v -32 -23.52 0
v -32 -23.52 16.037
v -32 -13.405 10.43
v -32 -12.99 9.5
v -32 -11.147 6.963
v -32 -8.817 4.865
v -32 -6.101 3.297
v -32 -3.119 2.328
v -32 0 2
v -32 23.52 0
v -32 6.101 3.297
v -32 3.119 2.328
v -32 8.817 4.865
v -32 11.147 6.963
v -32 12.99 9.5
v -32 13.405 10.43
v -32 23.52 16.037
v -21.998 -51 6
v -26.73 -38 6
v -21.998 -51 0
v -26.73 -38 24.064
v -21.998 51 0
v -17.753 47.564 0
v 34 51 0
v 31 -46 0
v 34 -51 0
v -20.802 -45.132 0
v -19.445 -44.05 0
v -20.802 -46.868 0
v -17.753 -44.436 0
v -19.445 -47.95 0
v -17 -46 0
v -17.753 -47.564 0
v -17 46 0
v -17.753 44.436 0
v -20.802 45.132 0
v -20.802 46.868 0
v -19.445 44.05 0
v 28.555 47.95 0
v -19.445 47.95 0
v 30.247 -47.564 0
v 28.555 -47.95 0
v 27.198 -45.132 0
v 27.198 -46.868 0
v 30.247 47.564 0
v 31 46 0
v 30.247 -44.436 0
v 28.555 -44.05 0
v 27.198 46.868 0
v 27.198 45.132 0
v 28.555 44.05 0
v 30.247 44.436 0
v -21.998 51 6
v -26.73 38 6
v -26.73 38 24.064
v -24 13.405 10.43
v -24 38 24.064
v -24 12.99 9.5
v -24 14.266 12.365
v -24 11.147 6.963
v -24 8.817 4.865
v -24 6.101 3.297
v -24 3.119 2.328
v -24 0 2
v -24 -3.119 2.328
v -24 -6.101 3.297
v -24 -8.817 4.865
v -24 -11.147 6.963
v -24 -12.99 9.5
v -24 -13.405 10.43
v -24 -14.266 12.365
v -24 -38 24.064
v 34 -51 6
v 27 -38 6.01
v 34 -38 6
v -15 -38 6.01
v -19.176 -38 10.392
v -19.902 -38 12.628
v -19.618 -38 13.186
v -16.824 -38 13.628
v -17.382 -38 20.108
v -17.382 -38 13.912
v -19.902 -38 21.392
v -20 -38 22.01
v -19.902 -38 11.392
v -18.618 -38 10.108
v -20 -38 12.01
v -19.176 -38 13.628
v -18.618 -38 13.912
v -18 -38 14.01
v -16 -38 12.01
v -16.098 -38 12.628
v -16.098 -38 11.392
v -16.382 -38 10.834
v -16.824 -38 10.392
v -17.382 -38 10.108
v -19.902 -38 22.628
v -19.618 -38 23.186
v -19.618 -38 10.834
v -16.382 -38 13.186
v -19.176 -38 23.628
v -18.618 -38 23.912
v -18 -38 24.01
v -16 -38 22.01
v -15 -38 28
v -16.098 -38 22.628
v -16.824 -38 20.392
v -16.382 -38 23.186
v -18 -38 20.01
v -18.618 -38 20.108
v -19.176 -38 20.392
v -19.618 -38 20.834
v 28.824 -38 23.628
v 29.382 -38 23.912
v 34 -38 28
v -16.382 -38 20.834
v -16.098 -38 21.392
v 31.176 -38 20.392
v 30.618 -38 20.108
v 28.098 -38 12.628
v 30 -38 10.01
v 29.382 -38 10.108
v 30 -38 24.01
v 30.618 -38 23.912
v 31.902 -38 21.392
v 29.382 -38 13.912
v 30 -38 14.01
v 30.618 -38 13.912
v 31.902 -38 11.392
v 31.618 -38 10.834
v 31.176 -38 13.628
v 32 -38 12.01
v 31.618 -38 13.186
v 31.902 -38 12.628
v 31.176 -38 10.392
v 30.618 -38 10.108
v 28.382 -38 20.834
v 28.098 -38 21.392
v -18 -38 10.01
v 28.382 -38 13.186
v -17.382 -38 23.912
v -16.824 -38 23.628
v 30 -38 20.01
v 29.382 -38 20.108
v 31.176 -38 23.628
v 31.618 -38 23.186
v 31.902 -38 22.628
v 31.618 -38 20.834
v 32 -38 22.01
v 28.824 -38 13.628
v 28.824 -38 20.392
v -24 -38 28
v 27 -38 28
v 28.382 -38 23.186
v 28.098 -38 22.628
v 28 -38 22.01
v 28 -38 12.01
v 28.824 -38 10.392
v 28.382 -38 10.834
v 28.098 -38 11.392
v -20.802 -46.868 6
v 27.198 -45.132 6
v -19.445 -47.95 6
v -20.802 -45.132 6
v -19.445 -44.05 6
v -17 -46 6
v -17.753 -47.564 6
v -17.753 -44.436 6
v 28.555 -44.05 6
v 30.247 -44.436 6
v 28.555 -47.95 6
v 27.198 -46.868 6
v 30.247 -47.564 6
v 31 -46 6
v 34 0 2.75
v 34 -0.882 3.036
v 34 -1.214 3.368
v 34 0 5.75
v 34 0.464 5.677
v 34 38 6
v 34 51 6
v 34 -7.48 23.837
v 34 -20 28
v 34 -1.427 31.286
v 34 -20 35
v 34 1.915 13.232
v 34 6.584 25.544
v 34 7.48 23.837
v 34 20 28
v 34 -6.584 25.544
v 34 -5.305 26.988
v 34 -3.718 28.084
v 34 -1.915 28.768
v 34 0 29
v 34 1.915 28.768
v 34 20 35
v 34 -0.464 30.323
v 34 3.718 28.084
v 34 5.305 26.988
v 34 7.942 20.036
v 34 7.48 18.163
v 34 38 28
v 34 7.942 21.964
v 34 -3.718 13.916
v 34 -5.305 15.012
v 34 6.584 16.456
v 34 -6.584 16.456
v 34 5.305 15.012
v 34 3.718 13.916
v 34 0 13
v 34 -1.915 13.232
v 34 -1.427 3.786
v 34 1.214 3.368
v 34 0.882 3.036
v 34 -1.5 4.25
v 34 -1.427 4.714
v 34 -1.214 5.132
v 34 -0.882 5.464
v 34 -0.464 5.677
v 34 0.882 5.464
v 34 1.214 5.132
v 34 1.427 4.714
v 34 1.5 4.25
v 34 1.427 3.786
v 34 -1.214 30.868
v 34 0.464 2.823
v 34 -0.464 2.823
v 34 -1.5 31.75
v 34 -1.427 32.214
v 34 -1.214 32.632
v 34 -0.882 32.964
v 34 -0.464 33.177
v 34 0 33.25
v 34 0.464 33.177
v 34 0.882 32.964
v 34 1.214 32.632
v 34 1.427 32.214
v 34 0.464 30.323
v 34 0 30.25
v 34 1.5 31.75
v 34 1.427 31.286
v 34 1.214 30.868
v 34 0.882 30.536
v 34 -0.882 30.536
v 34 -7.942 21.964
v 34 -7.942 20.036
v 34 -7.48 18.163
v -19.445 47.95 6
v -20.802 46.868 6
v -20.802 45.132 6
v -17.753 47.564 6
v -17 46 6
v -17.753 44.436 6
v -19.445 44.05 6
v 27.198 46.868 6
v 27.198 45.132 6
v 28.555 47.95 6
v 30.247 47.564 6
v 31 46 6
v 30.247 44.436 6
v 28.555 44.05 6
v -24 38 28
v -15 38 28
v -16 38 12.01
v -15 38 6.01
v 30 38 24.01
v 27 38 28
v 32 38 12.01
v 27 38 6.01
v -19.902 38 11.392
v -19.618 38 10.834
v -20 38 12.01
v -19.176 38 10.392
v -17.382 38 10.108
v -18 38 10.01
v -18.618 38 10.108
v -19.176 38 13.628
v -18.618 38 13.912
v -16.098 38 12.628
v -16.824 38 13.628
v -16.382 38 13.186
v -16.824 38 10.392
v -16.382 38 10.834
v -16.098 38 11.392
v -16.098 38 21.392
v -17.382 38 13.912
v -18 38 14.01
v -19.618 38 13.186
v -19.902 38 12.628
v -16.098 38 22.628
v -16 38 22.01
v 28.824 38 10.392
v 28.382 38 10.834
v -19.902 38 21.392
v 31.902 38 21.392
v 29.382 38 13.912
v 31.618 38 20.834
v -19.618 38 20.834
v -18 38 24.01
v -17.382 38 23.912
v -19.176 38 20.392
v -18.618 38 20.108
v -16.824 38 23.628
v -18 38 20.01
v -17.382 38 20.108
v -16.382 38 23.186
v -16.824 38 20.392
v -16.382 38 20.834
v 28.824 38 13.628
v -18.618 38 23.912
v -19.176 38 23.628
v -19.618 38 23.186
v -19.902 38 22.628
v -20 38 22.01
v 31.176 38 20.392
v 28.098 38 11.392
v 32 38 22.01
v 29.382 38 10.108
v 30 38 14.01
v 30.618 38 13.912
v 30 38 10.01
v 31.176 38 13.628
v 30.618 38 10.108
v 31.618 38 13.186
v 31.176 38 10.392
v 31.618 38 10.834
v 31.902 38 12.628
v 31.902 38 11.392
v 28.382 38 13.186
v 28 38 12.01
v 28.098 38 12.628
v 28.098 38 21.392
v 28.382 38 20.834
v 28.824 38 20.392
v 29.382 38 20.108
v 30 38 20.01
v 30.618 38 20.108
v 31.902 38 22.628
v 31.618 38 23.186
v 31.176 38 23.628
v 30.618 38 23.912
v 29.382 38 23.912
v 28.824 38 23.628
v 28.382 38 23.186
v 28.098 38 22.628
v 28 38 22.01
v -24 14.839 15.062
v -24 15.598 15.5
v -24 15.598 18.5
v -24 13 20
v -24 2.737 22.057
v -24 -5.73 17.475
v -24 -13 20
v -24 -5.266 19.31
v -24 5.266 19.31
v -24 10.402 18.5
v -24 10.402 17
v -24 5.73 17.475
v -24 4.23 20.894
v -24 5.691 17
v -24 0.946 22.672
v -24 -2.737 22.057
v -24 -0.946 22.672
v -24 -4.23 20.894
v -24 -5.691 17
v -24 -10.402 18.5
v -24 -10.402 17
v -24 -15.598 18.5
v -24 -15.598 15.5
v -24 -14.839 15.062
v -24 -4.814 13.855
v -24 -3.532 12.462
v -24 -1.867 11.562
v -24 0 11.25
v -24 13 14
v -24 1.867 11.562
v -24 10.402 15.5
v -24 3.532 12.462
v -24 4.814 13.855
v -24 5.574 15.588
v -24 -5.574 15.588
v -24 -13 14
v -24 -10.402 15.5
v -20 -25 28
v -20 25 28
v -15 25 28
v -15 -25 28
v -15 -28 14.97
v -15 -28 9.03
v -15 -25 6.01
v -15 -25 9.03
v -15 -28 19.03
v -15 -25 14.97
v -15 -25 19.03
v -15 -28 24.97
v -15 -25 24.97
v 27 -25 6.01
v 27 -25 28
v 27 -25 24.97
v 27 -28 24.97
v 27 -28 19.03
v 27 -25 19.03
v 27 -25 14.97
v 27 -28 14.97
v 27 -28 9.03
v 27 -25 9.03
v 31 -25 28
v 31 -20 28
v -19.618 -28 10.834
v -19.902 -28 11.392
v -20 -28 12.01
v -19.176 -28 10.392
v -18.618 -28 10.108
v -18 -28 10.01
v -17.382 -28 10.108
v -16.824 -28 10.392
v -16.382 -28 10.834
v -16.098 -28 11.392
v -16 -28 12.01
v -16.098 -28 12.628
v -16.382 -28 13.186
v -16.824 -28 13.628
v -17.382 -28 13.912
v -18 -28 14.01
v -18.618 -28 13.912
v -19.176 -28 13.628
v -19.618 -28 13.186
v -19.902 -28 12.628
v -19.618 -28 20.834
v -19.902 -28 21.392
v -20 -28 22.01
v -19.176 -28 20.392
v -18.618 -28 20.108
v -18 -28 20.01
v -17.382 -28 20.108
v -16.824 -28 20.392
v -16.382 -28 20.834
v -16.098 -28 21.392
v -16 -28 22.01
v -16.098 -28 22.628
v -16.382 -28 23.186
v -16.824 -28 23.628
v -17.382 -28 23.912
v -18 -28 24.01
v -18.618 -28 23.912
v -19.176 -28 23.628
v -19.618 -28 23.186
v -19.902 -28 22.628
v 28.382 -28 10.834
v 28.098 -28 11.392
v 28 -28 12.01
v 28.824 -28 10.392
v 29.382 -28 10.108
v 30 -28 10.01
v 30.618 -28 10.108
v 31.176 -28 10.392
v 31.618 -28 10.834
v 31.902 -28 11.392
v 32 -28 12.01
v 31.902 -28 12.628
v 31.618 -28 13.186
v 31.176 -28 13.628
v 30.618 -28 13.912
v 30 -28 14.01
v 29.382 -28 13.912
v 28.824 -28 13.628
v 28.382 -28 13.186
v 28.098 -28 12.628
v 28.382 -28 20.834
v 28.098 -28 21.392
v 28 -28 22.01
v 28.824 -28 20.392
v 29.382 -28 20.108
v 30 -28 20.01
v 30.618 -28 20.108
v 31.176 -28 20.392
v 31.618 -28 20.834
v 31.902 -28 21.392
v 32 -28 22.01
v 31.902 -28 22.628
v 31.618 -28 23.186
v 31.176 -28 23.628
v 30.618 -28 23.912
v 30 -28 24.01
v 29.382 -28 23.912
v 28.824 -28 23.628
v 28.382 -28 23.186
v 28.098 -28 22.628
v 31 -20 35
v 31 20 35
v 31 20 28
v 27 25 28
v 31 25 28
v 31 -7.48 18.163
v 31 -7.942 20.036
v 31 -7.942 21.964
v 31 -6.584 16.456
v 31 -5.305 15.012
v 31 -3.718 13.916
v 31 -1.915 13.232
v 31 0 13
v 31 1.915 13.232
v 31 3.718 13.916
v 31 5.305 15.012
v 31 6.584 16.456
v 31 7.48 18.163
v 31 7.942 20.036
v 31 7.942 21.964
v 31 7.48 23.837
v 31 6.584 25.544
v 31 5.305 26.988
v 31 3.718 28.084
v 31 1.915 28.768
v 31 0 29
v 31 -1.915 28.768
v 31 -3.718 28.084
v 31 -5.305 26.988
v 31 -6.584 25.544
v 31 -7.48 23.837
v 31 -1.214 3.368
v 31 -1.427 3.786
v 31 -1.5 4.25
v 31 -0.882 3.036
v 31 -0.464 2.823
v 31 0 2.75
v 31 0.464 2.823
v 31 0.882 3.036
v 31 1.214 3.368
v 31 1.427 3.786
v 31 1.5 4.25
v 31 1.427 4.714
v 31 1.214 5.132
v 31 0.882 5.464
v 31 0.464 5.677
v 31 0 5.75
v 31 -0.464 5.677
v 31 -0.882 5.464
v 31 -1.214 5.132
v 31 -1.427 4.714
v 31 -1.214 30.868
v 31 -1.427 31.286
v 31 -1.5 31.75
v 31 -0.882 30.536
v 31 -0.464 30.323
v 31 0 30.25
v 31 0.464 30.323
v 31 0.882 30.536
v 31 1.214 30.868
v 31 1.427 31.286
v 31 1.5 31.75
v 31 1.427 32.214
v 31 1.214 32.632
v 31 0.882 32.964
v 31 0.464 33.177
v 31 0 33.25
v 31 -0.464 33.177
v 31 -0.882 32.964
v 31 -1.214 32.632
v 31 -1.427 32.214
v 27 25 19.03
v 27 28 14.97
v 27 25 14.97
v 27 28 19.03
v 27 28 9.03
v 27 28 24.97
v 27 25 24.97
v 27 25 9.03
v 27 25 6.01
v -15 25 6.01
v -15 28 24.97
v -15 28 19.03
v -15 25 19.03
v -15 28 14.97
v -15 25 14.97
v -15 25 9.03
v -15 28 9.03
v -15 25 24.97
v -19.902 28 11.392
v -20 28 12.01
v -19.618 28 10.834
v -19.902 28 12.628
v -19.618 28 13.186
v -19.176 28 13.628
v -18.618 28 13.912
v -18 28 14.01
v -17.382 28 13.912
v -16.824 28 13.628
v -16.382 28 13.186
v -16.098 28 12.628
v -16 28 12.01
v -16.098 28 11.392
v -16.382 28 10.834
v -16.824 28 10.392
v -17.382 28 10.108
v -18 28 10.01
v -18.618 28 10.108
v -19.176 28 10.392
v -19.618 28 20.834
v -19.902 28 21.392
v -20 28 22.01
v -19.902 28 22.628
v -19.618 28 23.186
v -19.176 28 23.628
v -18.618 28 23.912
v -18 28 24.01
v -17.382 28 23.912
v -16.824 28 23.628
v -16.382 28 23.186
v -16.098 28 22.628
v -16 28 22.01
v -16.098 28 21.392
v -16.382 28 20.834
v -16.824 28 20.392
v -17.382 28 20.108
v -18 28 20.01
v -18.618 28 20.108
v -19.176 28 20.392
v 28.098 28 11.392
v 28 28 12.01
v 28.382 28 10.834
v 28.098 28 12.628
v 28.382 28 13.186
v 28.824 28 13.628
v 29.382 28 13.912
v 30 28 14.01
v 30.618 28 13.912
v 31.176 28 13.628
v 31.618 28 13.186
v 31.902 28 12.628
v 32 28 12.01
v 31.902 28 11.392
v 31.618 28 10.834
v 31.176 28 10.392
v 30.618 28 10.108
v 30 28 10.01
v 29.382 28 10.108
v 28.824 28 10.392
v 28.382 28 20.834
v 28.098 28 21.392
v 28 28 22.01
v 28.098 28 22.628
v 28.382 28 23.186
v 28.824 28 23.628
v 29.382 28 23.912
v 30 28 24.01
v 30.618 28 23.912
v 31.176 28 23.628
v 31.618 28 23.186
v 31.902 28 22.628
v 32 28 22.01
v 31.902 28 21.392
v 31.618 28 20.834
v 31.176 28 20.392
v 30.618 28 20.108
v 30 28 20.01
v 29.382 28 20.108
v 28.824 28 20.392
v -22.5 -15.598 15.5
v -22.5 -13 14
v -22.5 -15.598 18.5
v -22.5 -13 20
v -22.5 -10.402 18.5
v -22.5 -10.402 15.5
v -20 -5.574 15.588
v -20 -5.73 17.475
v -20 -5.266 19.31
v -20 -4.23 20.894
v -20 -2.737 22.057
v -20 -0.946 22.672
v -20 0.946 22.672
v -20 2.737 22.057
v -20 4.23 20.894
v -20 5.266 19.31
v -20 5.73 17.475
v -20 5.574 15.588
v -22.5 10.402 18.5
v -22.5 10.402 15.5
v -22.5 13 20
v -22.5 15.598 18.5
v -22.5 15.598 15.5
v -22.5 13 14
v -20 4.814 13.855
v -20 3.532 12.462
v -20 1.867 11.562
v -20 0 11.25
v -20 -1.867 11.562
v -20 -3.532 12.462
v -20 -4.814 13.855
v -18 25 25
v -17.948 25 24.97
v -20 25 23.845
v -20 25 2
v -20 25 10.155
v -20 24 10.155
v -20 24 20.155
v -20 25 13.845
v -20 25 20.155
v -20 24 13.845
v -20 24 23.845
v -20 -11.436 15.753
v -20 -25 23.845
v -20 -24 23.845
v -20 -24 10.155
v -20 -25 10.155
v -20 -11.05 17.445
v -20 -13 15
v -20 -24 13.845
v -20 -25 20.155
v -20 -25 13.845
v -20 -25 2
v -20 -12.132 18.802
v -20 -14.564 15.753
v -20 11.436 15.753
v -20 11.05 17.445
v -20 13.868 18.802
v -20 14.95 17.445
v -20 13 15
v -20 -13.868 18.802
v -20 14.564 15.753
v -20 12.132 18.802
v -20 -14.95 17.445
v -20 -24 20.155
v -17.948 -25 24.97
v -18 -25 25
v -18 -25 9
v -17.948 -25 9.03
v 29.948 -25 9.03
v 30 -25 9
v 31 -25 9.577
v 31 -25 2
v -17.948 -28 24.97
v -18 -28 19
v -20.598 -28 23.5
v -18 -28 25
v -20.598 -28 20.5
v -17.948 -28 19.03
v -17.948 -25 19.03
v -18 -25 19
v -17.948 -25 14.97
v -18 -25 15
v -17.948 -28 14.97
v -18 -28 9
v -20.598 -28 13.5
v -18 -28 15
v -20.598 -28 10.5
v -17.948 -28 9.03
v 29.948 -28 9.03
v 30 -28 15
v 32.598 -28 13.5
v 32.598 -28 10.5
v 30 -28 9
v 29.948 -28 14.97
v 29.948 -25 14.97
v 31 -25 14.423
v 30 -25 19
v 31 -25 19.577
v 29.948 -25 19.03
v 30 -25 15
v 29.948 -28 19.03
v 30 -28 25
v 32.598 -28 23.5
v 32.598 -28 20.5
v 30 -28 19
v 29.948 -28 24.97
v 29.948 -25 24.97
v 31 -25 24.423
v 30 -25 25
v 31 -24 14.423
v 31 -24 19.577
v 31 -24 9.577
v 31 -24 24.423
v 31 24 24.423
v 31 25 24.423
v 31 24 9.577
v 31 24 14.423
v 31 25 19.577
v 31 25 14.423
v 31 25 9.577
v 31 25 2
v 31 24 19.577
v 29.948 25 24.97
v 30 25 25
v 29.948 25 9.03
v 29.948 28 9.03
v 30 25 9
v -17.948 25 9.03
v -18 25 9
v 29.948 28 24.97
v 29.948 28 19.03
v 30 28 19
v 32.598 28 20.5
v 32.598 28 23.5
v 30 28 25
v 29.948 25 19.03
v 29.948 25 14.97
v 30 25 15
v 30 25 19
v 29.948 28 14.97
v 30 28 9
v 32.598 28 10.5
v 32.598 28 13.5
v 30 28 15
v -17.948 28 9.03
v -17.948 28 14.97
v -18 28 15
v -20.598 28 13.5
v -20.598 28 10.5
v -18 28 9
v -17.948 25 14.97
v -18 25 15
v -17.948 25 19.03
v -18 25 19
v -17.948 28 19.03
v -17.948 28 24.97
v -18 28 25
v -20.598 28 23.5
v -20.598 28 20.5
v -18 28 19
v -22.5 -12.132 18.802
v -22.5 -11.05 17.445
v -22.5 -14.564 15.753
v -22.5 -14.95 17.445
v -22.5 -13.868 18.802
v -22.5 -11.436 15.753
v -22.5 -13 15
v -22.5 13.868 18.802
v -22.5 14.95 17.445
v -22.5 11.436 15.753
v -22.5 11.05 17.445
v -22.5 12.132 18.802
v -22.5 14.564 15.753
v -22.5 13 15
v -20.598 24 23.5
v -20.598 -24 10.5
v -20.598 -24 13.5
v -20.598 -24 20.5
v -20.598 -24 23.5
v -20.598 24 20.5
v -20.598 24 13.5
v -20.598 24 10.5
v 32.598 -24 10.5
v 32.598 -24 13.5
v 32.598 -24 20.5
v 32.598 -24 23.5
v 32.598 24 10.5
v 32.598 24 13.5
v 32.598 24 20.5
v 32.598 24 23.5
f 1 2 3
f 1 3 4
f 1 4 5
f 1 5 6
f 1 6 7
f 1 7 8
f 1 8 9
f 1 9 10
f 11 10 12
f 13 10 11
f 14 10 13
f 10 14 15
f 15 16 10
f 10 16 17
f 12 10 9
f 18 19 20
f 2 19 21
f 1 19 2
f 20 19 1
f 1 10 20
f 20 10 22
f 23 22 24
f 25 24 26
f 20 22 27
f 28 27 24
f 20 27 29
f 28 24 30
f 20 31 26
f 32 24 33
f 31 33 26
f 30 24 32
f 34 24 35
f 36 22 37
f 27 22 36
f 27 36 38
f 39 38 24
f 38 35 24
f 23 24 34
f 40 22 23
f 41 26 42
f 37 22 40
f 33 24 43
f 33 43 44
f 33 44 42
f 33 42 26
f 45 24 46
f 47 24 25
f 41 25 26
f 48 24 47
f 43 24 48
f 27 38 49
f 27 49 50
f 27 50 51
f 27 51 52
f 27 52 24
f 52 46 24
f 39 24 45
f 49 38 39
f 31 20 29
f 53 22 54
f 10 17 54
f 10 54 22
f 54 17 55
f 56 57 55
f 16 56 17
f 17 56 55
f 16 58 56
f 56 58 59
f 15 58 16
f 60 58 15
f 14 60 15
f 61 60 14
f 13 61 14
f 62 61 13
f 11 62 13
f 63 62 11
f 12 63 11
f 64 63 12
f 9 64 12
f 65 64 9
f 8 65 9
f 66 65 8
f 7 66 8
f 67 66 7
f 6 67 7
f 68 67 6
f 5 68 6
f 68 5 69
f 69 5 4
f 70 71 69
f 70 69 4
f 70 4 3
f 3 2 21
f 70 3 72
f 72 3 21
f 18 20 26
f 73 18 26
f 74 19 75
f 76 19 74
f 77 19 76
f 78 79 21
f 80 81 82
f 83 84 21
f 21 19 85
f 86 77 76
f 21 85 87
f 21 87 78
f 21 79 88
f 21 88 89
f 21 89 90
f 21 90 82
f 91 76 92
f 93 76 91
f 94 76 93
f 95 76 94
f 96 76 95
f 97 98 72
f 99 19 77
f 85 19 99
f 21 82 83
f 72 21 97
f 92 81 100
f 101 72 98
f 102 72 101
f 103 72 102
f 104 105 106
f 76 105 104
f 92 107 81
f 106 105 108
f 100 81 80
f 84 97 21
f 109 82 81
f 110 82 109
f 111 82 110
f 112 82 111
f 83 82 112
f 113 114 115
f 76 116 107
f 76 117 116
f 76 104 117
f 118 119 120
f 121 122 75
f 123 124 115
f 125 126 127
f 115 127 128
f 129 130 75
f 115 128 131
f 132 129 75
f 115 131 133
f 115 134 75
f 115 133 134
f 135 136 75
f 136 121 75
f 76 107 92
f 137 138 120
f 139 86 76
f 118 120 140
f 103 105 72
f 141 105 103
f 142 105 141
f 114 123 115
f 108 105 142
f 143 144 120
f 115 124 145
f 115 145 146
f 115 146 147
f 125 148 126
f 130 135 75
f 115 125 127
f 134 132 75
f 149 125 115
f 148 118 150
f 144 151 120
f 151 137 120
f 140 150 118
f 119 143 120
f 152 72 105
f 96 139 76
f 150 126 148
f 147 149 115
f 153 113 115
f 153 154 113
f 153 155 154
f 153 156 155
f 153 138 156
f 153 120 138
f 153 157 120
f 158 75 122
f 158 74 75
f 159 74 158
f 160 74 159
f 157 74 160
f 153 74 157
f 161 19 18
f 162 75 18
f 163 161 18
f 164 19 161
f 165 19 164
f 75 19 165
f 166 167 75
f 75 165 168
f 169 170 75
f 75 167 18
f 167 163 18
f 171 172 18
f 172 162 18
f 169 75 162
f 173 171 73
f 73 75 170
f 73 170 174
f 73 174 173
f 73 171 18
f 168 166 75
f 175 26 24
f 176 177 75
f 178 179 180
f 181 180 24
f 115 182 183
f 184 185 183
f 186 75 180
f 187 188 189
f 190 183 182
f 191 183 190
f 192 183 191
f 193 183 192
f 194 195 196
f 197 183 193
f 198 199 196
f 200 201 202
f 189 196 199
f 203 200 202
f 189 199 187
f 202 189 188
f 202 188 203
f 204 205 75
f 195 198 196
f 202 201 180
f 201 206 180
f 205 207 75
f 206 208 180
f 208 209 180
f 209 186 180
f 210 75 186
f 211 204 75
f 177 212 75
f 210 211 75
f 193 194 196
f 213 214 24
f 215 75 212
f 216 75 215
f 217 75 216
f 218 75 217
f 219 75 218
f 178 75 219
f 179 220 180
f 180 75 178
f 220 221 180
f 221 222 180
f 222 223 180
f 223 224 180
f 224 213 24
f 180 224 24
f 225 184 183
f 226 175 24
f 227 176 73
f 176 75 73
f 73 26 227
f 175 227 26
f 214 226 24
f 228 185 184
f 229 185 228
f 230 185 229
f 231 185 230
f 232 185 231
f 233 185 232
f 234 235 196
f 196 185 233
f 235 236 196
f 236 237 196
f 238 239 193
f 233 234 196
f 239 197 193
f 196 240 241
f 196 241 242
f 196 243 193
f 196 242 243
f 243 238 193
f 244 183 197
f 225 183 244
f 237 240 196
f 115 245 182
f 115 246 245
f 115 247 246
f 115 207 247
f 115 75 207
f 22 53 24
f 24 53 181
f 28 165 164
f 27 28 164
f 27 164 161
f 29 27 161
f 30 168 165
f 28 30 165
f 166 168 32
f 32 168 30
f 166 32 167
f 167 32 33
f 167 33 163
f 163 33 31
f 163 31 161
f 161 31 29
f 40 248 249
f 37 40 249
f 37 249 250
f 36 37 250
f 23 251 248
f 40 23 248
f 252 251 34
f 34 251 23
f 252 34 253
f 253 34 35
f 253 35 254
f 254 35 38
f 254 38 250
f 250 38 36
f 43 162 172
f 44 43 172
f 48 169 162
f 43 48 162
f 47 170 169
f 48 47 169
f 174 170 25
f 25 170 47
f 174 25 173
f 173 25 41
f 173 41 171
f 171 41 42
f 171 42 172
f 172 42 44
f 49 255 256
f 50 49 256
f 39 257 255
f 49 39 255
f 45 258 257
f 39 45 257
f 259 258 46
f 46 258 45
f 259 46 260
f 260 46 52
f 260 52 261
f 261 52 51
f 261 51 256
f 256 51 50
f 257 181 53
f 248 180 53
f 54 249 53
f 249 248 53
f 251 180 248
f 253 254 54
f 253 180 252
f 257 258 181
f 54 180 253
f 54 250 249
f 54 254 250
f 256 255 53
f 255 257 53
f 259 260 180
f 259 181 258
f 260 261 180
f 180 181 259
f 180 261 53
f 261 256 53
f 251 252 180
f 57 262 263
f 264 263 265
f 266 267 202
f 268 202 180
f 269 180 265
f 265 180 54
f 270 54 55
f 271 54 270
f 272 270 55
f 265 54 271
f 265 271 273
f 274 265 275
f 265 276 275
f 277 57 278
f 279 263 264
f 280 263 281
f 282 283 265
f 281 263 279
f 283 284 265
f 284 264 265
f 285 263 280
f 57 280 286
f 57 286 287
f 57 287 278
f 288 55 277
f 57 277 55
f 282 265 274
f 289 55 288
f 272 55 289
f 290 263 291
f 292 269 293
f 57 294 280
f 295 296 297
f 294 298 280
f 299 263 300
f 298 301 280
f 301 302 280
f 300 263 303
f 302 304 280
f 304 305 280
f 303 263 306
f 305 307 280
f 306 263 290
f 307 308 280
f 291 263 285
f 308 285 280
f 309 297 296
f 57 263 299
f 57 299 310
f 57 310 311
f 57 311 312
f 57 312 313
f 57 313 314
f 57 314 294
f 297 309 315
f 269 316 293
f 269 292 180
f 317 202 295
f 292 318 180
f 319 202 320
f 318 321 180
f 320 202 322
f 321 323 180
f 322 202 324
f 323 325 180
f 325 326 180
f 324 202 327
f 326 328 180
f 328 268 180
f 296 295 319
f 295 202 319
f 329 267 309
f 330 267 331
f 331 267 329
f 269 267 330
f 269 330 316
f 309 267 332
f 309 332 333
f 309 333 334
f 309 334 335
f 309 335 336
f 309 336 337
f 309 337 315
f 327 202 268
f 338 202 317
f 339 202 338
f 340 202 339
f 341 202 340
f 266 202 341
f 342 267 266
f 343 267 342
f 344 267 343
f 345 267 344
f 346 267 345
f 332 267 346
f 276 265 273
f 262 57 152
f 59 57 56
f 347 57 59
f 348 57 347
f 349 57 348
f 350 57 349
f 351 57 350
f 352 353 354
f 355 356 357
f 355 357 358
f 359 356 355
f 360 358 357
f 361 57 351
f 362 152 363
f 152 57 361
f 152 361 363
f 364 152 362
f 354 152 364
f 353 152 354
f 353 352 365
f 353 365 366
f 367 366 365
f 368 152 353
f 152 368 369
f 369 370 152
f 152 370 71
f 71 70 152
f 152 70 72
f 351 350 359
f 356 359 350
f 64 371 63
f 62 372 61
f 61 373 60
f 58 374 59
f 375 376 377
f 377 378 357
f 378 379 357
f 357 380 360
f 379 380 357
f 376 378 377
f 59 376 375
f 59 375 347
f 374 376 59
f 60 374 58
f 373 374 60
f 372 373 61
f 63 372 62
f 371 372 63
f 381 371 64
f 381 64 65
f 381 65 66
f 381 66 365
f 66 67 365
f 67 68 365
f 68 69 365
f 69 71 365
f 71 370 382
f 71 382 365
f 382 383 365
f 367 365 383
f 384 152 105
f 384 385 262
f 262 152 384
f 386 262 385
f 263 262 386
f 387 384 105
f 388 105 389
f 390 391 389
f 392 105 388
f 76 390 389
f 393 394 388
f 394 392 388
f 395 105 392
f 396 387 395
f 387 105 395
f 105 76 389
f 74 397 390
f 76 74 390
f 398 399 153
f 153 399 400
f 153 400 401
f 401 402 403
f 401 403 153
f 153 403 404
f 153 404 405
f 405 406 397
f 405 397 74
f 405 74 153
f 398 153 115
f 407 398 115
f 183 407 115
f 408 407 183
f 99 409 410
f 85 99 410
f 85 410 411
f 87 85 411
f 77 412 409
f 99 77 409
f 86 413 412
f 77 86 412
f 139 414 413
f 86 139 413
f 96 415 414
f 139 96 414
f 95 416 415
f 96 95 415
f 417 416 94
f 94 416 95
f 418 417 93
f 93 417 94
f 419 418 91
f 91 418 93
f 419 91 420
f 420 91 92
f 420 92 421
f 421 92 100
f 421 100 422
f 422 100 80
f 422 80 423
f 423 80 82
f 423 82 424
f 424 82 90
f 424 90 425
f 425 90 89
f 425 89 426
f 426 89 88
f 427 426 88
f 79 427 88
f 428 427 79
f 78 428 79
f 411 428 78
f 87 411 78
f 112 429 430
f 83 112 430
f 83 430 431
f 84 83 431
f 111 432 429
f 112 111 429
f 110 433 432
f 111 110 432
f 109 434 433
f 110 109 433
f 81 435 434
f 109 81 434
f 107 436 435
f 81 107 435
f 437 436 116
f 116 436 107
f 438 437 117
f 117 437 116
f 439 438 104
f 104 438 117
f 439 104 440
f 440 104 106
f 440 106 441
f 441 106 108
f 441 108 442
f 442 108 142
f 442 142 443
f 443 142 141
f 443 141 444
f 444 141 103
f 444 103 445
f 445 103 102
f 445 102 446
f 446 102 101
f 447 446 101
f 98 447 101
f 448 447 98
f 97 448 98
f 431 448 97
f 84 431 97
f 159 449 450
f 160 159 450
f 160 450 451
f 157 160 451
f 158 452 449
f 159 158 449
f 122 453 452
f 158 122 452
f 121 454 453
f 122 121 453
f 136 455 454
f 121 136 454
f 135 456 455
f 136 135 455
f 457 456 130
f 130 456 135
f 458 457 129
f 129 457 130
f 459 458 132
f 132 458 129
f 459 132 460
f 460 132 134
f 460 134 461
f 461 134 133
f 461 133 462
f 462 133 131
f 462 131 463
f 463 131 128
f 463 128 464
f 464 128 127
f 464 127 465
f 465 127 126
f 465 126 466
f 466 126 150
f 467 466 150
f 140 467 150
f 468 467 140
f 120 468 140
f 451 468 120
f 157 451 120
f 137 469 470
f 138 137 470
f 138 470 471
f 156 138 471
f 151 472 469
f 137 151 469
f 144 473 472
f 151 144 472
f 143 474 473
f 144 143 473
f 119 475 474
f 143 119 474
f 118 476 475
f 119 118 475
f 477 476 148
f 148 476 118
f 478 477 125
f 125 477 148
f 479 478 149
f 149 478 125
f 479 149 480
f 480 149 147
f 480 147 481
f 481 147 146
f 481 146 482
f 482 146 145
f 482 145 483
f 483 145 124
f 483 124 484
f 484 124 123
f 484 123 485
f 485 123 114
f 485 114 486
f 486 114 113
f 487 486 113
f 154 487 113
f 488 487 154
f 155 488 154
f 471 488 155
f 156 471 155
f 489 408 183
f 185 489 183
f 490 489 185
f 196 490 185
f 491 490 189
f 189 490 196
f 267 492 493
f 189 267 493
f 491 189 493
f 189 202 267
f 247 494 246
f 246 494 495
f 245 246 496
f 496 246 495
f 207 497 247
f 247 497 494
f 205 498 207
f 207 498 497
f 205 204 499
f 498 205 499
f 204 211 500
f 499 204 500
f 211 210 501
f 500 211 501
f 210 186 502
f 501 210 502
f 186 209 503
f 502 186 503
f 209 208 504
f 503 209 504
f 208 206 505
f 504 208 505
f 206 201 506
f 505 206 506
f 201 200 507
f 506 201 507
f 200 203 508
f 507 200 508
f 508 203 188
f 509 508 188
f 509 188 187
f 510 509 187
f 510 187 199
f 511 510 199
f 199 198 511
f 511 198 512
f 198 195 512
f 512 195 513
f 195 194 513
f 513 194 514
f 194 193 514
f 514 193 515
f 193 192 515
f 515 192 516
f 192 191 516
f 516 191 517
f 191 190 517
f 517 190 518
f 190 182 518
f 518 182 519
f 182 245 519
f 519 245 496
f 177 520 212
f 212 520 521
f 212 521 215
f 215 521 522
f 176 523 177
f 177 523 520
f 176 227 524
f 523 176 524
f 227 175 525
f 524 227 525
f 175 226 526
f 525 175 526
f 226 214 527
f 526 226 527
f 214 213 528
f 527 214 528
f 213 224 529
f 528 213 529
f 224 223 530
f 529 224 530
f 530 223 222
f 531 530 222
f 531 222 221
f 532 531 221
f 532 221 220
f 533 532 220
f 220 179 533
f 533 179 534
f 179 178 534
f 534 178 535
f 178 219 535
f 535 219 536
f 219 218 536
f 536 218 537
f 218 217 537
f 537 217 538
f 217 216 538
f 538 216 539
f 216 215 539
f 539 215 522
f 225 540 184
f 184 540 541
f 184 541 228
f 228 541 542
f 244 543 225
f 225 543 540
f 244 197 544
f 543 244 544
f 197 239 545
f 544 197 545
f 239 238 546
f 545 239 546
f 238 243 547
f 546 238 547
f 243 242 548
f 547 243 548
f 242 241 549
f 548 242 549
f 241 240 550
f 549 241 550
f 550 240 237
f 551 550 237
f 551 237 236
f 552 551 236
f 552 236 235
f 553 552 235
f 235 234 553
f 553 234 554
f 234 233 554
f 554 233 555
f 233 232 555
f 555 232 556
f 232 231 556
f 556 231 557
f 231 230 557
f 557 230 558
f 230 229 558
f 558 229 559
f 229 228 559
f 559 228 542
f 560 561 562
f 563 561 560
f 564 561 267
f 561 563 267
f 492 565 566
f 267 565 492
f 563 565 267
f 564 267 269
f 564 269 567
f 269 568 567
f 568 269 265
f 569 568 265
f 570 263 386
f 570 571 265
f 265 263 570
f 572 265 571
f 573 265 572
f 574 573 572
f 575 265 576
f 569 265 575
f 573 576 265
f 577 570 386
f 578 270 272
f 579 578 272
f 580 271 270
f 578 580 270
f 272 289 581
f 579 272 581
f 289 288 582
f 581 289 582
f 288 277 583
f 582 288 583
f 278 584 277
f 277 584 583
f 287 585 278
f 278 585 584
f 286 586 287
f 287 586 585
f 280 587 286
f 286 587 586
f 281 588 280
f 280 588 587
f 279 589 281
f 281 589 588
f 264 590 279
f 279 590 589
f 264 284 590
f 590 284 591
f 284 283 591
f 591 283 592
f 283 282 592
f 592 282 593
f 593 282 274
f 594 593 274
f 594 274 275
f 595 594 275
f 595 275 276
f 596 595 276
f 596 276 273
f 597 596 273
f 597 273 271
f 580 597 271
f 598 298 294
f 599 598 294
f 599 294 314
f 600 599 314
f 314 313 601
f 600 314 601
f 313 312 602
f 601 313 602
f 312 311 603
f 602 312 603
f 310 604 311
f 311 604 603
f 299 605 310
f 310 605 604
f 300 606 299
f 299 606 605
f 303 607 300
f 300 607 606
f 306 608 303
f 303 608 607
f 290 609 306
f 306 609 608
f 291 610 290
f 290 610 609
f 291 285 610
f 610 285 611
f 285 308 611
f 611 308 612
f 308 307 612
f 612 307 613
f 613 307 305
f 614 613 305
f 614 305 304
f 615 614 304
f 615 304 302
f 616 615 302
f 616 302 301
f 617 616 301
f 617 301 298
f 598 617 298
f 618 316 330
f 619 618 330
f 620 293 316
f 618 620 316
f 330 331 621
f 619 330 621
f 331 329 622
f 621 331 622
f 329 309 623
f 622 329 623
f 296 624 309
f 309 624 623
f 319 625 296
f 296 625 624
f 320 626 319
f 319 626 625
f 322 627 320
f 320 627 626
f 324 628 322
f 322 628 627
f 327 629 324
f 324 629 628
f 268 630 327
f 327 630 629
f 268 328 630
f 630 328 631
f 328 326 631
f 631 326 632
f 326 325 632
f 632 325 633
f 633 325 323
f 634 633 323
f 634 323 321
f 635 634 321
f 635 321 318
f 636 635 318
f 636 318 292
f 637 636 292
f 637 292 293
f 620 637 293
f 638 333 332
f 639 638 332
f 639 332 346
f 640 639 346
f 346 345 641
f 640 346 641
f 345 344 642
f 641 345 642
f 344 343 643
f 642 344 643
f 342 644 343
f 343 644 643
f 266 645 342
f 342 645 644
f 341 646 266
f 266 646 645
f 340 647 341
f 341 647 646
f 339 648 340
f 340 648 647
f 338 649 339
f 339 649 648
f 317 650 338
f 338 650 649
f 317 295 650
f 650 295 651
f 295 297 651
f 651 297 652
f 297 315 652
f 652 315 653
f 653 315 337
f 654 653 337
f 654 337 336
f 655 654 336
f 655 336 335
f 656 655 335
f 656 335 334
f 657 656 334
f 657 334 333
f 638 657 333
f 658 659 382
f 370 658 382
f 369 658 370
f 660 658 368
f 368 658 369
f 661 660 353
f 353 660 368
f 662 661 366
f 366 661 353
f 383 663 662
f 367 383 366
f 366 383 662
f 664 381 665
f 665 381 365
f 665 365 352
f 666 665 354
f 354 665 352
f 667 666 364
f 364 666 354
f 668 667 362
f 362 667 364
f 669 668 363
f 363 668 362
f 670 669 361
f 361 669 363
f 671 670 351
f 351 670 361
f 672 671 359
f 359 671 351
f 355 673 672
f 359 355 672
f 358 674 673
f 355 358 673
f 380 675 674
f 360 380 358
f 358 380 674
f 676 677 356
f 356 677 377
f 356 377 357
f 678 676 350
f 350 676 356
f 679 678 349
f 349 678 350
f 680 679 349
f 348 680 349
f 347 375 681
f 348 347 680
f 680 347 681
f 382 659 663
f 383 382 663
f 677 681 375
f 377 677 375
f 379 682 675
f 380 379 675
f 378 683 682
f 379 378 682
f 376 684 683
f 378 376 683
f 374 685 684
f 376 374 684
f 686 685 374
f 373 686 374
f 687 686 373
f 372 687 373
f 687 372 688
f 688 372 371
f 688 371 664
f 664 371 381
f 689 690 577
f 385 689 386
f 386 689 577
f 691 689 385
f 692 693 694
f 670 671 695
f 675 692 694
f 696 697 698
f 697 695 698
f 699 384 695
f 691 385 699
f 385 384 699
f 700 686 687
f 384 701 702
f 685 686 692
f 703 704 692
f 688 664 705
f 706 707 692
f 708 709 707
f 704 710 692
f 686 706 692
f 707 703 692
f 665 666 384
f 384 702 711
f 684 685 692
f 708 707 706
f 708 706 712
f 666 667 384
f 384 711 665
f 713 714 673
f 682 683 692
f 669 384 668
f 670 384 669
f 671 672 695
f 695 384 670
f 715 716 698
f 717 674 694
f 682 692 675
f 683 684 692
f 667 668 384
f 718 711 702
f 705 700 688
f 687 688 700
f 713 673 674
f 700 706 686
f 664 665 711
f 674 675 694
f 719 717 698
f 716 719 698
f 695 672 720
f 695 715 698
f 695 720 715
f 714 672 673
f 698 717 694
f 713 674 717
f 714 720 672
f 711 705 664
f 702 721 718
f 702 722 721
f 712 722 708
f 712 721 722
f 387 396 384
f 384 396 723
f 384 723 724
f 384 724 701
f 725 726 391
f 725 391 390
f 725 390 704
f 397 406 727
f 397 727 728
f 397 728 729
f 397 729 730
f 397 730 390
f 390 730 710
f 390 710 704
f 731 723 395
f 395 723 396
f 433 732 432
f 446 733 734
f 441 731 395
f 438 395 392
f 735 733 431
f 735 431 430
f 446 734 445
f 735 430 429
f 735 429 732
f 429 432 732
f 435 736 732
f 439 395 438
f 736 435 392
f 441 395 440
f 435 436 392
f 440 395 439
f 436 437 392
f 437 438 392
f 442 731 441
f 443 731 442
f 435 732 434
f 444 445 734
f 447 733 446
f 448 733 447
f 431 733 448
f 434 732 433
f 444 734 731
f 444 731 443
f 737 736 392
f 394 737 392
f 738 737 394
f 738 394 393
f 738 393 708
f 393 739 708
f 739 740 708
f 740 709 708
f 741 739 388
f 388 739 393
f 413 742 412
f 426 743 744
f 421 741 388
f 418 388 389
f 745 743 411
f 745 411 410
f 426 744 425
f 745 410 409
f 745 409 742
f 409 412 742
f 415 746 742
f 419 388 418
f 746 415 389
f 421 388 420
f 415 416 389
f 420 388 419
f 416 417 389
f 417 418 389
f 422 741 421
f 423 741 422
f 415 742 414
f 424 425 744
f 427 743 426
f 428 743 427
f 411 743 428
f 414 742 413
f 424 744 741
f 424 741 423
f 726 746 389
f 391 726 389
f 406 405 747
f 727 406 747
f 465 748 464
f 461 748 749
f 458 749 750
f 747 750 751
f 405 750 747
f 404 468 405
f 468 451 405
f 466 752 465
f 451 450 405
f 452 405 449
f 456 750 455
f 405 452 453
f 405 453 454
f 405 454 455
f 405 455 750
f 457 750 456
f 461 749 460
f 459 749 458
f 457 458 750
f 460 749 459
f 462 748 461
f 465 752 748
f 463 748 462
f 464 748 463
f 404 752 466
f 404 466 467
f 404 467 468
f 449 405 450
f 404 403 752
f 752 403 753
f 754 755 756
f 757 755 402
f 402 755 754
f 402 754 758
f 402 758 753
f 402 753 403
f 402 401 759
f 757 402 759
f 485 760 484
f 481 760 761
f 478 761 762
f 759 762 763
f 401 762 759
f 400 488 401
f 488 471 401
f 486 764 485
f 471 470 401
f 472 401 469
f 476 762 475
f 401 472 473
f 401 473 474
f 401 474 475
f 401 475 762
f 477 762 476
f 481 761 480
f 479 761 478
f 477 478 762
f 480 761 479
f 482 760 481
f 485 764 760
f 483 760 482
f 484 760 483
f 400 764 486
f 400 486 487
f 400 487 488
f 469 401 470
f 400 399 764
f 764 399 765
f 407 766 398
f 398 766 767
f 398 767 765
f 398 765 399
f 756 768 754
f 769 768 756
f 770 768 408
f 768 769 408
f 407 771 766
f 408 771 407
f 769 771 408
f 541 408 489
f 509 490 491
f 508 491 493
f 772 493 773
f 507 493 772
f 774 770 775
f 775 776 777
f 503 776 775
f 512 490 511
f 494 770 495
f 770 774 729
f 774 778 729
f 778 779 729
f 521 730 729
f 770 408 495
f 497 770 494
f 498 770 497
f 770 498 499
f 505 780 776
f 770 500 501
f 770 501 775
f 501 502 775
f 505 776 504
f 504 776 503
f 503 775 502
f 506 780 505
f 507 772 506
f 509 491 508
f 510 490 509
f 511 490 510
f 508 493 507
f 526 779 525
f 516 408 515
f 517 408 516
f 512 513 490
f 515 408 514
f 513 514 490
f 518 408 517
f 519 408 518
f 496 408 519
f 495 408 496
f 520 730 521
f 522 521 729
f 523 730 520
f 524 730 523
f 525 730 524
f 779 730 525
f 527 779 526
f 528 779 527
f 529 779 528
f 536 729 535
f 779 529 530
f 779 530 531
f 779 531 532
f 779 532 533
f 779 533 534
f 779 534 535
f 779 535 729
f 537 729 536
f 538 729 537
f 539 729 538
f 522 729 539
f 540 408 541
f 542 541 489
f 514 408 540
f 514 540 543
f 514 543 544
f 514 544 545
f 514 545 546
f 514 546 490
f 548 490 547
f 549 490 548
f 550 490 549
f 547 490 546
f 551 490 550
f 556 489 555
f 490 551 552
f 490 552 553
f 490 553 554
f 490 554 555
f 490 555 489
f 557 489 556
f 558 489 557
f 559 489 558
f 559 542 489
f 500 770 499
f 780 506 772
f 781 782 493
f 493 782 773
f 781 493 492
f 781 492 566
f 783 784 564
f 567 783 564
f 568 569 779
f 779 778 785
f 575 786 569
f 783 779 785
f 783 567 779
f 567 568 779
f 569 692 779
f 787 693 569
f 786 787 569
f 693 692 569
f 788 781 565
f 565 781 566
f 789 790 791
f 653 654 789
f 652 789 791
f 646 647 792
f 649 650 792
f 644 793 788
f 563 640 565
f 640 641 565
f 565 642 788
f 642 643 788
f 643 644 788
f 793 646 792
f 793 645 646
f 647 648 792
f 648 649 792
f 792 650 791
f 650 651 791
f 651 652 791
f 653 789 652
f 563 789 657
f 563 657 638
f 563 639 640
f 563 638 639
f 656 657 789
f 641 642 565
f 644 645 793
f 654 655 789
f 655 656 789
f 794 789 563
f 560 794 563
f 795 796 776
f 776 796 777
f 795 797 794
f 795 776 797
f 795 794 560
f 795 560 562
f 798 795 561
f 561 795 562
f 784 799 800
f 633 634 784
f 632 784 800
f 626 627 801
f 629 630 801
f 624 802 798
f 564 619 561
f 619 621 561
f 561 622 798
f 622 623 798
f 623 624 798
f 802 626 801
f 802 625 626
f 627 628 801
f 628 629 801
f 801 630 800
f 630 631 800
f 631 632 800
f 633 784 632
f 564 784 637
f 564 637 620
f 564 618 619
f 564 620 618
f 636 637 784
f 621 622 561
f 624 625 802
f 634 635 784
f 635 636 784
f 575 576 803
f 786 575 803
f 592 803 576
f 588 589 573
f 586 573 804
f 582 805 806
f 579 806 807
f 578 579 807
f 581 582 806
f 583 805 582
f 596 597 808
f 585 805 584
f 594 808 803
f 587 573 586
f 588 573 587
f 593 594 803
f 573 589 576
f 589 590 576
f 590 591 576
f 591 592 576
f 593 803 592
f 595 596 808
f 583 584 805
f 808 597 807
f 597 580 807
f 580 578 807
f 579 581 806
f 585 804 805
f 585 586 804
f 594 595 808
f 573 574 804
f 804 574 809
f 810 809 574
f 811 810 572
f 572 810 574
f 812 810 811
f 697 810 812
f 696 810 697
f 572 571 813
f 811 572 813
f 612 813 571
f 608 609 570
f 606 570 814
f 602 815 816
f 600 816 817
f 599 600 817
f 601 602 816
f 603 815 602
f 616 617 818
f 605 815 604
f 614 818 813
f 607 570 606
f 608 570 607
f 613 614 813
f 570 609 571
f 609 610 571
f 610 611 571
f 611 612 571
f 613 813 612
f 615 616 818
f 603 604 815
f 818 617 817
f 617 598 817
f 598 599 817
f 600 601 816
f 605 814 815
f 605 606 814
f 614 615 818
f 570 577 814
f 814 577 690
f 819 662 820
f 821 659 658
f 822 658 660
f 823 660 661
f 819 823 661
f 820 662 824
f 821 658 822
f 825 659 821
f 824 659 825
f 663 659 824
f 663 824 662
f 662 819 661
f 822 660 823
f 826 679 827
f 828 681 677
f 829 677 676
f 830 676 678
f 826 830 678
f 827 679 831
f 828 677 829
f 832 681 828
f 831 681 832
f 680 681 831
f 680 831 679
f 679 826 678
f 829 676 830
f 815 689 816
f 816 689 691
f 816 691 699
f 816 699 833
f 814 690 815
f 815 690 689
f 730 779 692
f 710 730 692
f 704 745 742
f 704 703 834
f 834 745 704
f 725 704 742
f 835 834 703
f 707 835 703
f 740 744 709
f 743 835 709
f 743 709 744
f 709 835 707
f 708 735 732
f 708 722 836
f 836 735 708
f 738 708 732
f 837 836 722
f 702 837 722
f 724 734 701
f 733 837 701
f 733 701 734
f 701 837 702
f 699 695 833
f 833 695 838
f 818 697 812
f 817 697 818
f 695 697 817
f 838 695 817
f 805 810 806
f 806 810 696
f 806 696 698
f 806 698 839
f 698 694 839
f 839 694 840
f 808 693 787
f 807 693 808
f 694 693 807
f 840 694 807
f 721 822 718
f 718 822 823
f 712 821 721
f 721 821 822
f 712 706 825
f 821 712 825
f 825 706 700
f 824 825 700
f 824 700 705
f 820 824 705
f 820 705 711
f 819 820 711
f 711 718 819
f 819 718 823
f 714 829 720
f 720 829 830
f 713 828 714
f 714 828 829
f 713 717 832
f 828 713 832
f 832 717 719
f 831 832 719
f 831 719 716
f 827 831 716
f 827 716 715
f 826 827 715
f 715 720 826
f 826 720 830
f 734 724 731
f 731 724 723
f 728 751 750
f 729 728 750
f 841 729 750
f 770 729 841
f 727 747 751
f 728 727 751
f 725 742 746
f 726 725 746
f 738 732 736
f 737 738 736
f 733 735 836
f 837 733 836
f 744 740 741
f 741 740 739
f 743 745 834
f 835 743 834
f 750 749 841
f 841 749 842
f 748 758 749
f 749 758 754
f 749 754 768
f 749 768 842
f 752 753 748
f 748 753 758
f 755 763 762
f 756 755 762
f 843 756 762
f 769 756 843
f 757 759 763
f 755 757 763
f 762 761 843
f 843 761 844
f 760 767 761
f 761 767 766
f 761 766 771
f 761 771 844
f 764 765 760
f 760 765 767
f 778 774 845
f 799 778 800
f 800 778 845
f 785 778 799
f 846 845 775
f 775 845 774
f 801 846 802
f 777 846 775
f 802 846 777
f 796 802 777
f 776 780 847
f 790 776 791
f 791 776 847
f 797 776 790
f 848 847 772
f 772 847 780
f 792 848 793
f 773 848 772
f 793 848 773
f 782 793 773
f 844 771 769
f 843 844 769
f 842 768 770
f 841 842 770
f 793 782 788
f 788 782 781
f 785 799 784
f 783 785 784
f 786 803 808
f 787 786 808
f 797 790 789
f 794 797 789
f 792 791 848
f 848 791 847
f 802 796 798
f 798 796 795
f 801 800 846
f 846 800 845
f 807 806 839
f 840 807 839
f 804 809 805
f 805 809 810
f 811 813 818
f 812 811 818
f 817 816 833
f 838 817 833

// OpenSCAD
//Arduino Mega Board: 54x102x10


module pasantes(){
	translate([29,46,-1])cylinder(r=2,h=70);
	translate([29,-46,-1])cylinder(r=2,h=70);
	translate([-19,46,-1])cylinder(r=2,h=70);
	translate([-19,-46,-1])cylinder(r=2,h=70);
}

module servo(z){
	cube([42,22,z]);
	translate([-3,6,0])union(){
		cylinder(r=2, h=z,$fn=20);
		translate([48,0,0])cylinder(r=2, h=z,$fn=20);
		translate([48,10,0])cylinder(r=2, h=z,$fn=20);
		translate([0,10,0])cylinder(r=2, h=z,$fn=20);
	}
}

module miniservo(z){
	//cube([24,14,z]);
	translate([15,7,0])rotate([0,0,0])cylinder(r=8,h=z);
	translate([-1.75,7,0])union(){
		cylinder(r=1.5, h=z,$fn=20);
		translate([27.5,0,0])cylinder(r=1.5, h=z,$fn=20);
		
	}
}

module tuerca(){ //M3
	cylinder(r=3, h=4,$fn=6);
}

xmax=66;
ymax=102;

difference(){
	union(){
		translate([-64/2,-102/2,0])cube([xmax,ymax,28]);
		translate([-64/2+20,-20,0])cube([46,40,35]);		
	}
	translate([-20,-25,2])cube([51,50,34]); //cajeado
	translate([-29,-61,-4])rotate([0,0,20])cube([10,100,100]);
	mirror([0,1,0])translate([-29,-61,-4])rotate([0,0,20])cube([10,100,100]);

	difference(){
		translate([-15,50,6.01])rotate([90,0,0])servo(100);
		translate([30.8,0,6])cube([10,49,70],center=true);
	}
	
//Huecos para tuercas
	translate([-18,28,12])rotate([90,0,0]){
		rotate([0,0,30])cylinder(r=3, h=4,$fn=6);
		translate([3,0,0])rotate([0,0,45])cylinder(r=4.2, h=4,$fn=4);
		translate([48,0,0])rotate([0,0,30])tuerca();
		translate([45,0,0])rotate([0,0,45])cylinder(r=4.2, h=4,$fn=4);
		translate([48,10,0])rotate([0,0,30])tuerca();
		translate([45,10,0])rotate([0,0,45])cylinder(r=4.2, h=4,$fn=4);
		translate([0,10,0])rotate([0,0,30])tuerca();
		translate([3,10,0])rotate([0,0,45])cylinder(r=4.2, h=4,$fn=4);
	}
	mirror([0,1,0])translate([-18,28,12])rotate([90,0,0]){
		rotate([0,0,30])cylinder(r=3, h=4,$fn=6);
		translate([3,0,0])rotate([0,0,45])cylinder(r=4.2, h=4,$fn=4);
		translate([48,0,0])rotate([0,0,30])tuerca();
		translate([45,0,0])rotate([0,0,45])cylinder(r=4.2, h=4,$fn=4);
		translate([48,10,0])rotate([0,0,30])tuerca();
		translate([45,10,0])rotate([0,0,45])cylinder(r=4.2, h=4,$fn=4);
		translate([0,10,0])rotate([0,0,30])tuerca();
		translate([3,10,0])rotate([0,0,45])cylinder(r=4.2, h=4,$fn=4);
	}






	translate([40,-7,6])rotate([0,-90,0])miniservo(30);
	translate([-64,0,17])rotate([0,90,0])cylinder(r=15,h=40);

//Cruceta del servo	
	translate([-50,0,17])rotate([0,90,0])cylinder(r=11.5/2,h=40);
	translate([-50,+13,17])rotate([0,90,0])cylinder(r=2,h=40);
	translate([-50,-13,17])rotate([0,90,0])cylinder(r=2,h=40);
	translate([-62.5,+13,17])rotate([0,90,0])cylinder(r=3,h=40,$fn=6);
	translate([-62.5,-13,17])rotate([0,90,0])cylinder(r=3,h=40,$fn=6);

//Huecos para permitir el giro
	translate([-64,0,3])rotate([29,0,0])cube([40,60,40]);
	mirror([0,1,0])translate([-64,0,3])rotate([29,0,0])cube([40,60,40]);

	translate([-32,51-13,6])cube([69,40,23]);
	mirror([0,1,0])	translate([-32,51-13,6])cube([69,40,23]);

//Agujeros chasis
	pasantes();





}/**/
